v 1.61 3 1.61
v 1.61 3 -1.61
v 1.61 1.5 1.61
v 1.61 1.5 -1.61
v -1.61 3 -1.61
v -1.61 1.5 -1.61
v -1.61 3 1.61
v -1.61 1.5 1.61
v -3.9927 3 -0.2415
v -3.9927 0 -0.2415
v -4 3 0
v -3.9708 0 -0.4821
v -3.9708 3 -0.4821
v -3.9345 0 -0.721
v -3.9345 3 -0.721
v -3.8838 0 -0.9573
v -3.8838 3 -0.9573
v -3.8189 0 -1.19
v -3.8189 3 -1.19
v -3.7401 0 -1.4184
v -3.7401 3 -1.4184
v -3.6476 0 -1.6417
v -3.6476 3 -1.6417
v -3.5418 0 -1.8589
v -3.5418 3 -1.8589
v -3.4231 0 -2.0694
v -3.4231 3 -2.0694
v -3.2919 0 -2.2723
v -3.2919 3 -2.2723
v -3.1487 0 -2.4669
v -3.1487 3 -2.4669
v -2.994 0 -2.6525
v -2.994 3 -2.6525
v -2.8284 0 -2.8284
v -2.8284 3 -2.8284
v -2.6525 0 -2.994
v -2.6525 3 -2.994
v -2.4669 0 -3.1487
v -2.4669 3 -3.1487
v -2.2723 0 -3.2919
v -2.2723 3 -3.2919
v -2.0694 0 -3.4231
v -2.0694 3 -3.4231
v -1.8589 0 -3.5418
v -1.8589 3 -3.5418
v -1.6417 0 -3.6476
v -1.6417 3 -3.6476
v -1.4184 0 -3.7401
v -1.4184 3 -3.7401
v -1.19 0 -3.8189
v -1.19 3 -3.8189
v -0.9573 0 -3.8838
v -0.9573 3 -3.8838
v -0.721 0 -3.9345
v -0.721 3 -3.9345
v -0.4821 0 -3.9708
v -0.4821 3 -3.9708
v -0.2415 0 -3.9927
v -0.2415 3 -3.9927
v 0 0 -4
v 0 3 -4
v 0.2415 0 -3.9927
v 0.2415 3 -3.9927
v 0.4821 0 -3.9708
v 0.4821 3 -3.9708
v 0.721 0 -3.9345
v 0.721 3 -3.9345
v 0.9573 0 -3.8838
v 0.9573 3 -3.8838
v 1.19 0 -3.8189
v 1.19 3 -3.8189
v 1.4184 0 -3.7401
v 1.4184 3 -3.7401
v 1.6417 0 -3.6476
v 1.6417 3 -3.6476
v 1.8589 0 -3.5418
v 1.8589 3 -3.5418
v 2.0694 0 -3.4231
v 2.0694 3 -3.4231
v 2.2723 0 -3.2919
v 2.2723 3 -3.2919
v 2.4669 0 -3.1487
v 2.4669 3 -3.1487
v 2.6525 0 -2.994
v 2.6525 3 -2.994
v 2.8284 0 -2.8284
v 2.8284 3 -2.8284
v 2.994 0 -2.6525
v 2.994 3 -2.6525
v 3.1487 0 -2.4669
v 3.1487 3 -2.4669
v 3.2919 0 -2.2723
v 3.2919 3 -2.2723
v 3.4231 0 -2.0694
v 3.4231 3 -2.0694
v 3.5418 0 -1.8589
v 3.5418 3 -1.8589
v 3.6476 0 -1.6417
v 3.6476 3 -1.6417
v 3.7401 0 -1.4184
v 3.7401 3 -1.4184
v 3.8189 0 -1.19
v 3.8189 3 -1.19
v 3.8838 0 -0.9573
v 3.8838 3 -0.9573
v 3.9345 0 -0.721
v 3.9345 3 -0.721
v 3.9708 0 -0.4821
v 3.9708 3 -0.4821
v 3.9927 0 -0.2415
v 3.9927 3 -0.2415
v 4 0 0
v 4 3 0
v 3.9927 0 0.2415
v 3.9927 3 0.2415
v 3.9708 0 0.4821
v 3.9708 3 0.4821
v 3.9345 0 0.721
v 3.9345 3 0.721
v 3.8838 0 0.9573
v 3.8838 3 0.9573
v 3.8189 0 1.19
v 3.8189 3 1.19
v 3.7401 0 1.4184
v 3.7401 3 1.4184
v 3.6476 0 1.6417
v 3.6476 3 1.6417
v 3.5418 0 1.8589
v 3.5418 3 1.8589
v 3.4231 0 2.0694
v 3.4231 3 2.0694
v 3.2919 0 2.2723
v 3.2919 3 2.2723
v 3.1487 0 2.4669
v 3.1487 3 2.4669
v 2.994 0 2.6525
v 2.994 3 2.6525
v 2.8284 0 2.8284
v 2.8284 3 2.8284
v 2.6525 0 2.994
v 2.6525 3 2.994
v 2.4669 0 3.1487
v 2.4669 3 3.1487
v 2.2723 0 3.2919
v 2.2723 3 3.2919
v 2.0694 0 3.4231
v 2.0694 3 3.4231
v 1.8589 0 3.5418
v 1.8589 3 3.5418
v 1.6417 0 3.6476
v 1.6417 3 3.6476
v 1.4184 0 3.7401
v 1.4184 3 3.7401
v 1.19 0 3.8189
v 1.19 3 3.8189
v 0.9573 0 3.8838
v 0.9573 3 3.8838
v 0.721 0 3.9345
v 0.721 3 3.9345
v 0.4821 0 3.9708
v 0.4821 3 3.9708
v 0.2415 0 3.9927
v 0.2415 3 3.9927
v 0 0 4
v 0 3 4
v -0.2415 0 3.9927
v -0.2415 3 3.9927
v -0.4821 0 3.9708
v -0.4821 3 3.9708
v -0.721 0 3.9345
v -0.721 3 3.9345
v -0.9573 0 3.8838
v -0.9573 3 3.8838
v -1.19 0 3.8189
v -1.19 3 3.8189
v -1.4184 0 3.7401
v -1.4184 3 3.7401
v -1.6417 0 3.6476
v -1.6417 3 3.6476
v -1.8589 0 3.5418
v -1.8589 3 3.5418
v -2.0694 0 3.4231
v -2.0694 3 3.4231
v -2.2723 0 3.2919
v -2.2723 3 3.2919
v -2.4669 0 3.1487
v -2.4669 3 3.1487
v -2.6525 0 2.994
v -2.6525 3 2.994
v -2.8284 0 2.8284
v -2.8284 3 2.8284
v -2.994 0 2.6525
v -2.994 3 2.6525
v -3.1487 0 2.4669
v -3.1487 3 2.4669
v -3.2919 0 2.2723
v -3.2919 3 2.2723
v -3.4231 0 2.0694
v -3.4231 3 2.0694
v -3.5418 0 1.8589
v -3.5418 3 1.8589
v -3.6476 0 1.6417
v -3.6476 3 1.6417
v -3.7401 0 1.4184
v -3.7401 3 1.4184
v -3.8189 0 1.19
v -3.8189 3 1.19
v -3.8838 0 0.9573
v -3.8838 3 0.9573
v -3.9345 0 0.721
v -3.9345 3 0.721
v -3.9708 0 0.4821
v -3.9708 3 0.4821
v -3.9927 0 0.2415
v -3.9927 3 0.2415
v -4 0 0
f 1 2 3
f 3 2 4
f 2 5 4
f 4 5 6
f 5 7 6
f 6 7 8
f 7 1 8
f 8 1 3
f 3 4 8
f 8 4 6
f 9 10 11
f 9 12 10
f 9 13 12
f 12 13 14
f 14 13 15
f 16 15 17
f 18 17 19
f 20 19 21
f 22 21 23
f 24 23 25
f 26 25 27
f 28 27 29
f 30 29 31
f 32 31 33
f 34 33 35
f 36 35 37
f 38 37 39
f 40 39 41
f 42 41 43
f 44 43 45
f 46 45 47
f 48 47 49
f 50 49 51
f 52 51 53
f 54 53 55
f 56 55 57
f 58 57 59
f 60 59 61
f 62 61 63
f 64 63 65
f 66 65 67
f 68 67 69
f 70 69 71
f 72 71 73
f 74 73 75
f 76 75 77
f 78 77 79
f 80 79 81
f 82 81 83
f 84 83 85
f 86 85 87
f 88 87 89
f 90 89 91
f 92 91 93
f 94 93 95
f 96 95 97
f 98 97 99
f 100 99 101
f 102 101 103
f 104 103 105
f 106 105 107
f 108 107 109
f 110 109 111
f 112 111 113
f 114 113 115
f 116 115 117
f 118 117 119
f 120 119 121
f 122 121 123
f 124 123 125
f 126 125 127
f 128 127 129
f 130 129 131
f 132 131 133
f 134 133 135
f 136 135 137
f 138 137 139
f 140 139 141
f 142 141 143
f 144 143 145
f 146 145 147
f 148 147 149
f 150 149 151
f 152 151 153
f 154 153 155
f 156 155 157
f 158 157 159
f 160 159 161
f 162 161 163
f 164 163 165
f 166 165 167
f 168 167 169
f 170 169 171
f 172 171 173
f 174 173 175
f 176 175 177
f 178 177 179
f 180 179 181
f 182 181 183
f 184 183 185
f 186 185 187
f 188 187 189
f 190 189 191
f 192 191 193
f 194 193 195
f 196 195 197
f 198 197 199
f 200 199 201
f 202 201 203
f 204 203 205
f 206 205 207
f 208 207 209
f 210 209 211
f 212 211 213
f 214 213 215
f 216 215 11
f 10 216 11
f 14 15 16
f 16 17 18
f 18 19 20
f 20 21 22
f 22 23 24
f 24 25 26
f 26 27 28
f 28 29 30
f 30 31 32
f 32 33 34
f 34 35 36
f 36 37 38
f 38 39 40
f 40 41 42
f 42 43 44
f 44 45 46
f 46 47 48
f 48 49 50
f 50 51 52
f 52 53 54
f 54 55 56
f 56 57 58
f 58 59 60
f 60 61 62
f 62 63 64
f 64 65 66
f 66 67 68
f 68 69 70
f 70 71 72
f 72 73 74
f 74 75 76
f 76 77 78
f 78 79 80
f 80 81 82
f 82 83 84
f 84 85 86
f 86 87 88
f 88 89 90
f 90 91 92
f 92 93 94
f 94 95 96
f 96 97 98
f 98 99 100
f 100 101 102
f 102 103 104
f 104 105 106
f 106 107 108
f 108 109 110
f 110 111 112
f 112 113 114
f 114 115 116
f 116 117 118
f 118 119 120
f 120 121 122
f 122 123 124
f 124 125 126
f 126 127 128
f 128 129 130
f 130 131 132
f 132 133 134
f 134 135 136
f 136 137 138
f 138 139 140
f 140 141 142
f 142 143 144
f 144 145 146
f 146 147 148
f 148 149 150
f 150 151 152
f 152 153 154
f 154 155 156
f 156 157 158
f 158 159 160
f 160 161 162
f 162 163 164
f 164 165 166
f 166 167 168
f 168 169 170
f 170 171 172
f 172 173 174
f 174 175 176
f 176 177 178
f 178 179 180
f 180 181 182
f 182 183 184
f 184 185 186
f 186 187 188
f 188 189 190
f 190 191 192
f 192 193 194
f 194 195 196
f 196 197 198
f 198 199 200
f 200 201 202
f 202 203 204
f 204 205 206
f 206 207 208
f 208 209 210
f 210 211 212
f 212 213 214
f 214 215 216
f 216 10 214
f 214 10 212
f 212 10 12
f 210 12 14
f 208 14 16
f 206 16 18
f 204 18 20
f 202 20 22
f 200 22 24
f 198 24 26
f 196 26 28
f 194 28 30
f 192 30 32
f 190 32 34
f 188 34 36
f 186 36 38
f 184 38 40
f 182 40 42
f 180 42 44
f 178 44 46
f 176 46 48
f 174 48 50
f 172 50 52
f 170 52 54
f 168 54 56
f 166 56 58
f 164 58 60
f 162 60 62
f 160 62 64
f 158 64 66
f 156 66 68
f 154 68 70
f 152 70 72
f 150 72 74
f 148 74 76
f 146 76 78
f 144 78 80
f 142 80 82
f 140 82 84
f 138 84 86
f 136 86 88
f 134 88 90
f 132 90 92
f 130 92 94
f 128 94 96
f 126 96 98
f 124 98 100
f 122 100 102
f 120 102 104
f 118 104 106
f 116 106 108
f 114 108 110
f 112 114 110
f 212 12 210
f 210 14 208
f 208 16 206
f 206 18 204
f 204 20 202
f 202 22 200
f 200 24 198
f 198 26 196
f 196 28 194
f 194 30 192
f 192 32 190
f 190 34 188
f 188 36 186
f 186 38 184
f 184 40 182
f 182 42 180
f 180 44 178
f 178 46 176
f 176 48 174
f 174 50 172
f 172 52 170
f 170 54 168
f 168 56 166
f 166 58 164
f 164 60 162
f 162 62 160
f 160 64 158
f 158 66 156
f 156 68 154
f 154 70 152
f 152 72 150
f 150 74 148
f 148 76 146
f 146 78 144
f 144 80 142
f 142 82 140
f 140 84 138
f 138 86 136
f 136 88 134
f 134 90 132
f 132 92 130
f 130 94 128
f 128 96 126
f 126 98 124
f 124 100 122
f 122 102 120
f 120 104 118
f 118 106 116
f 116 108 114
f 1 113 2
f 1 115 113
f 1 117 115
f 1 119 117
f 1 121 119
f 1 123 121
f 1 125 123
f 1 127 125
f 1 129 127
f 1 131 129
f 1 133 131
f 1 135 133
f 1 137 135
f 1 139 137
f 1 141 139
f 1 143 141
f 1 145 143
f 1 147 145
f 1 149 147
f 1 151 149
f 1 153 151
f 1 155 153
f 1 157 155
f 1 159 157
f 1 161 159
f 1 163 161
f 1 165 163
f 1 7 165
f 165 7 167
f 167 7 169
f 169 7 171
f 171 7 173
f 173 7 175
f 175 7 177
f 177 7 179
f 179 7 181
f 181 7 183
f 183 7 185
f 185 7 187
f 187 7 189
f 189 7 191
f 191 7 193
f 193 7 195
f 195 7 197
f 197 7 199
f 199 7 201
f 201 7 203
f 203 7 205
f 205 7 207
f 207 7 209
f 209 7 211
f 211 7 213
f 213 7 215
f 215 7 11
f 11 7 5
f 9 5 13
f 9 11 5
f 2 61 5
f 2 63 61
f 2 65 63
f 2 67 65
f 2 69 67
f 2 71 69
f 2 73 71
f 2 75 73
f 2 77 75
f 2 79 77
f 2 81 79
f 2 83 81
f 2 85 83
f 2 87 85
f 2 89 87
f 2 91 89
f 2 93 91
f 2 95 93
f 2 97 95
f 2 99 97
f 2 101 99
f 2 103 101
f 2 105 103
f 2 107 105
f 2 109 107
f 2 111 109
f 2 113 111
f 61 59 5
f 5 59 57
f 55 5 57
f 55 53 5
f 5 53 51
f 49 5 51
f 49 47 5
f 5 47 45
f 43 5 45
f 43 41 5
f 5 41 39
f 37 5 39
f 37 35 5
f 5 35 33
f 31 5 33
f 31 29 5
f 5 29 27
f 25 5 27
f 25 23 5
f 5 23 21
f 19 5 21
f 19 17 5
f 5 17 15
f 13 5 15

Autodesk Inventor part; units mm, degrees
ref_plane "YZ Plane" through (0, 0, 0) normal (1, 0, 0) x (0, 1, 0)
ref_plane "XZ Plane" through (0, 0, 0) normal (0, 1, 0) x (-1, 0, 0)
ref_plane "XY Plane" through (0, 0, 0) normal (0, 0, 1) x (1, 0, 0)
sketch "Sketch1" plane through (0, 0, 0) normal (0, 1, 0) x (-1, 0, 0)
  circle A0 centre (0, 0) radius 4
  dimension "d0" = 8
extrude "Extrusion1" add sketch "Sketch1" along normal blind 3
sketch "Sketch2" plane through (0, 3, 0) normal (0, 1, 0) x (1, 0, 0)
  line L0 (-1.61, -1.61) -> (1.61, -1.61)
  line L1 (1.61, -1.61) -> (1.61, 1.61)
  line L2 (1.61, 1.61) -> (-1.61, 1.61)
  line L3 (-1.61, 1.61) -> (-1.61, -1.61)
  point P0 (0, 0)
  dimension "d3" = 3.22
  dimension "d4" = 1.61
  dimension "d6" = 1.61
extrude "Extrusion2" cut sketch "Sketch2" against normal blind 1.5
equation "\"d4\" = 0.5 * d3"
equation "\"d6\" = 0.5 * d3"
properties part number "Wheel_cap"
